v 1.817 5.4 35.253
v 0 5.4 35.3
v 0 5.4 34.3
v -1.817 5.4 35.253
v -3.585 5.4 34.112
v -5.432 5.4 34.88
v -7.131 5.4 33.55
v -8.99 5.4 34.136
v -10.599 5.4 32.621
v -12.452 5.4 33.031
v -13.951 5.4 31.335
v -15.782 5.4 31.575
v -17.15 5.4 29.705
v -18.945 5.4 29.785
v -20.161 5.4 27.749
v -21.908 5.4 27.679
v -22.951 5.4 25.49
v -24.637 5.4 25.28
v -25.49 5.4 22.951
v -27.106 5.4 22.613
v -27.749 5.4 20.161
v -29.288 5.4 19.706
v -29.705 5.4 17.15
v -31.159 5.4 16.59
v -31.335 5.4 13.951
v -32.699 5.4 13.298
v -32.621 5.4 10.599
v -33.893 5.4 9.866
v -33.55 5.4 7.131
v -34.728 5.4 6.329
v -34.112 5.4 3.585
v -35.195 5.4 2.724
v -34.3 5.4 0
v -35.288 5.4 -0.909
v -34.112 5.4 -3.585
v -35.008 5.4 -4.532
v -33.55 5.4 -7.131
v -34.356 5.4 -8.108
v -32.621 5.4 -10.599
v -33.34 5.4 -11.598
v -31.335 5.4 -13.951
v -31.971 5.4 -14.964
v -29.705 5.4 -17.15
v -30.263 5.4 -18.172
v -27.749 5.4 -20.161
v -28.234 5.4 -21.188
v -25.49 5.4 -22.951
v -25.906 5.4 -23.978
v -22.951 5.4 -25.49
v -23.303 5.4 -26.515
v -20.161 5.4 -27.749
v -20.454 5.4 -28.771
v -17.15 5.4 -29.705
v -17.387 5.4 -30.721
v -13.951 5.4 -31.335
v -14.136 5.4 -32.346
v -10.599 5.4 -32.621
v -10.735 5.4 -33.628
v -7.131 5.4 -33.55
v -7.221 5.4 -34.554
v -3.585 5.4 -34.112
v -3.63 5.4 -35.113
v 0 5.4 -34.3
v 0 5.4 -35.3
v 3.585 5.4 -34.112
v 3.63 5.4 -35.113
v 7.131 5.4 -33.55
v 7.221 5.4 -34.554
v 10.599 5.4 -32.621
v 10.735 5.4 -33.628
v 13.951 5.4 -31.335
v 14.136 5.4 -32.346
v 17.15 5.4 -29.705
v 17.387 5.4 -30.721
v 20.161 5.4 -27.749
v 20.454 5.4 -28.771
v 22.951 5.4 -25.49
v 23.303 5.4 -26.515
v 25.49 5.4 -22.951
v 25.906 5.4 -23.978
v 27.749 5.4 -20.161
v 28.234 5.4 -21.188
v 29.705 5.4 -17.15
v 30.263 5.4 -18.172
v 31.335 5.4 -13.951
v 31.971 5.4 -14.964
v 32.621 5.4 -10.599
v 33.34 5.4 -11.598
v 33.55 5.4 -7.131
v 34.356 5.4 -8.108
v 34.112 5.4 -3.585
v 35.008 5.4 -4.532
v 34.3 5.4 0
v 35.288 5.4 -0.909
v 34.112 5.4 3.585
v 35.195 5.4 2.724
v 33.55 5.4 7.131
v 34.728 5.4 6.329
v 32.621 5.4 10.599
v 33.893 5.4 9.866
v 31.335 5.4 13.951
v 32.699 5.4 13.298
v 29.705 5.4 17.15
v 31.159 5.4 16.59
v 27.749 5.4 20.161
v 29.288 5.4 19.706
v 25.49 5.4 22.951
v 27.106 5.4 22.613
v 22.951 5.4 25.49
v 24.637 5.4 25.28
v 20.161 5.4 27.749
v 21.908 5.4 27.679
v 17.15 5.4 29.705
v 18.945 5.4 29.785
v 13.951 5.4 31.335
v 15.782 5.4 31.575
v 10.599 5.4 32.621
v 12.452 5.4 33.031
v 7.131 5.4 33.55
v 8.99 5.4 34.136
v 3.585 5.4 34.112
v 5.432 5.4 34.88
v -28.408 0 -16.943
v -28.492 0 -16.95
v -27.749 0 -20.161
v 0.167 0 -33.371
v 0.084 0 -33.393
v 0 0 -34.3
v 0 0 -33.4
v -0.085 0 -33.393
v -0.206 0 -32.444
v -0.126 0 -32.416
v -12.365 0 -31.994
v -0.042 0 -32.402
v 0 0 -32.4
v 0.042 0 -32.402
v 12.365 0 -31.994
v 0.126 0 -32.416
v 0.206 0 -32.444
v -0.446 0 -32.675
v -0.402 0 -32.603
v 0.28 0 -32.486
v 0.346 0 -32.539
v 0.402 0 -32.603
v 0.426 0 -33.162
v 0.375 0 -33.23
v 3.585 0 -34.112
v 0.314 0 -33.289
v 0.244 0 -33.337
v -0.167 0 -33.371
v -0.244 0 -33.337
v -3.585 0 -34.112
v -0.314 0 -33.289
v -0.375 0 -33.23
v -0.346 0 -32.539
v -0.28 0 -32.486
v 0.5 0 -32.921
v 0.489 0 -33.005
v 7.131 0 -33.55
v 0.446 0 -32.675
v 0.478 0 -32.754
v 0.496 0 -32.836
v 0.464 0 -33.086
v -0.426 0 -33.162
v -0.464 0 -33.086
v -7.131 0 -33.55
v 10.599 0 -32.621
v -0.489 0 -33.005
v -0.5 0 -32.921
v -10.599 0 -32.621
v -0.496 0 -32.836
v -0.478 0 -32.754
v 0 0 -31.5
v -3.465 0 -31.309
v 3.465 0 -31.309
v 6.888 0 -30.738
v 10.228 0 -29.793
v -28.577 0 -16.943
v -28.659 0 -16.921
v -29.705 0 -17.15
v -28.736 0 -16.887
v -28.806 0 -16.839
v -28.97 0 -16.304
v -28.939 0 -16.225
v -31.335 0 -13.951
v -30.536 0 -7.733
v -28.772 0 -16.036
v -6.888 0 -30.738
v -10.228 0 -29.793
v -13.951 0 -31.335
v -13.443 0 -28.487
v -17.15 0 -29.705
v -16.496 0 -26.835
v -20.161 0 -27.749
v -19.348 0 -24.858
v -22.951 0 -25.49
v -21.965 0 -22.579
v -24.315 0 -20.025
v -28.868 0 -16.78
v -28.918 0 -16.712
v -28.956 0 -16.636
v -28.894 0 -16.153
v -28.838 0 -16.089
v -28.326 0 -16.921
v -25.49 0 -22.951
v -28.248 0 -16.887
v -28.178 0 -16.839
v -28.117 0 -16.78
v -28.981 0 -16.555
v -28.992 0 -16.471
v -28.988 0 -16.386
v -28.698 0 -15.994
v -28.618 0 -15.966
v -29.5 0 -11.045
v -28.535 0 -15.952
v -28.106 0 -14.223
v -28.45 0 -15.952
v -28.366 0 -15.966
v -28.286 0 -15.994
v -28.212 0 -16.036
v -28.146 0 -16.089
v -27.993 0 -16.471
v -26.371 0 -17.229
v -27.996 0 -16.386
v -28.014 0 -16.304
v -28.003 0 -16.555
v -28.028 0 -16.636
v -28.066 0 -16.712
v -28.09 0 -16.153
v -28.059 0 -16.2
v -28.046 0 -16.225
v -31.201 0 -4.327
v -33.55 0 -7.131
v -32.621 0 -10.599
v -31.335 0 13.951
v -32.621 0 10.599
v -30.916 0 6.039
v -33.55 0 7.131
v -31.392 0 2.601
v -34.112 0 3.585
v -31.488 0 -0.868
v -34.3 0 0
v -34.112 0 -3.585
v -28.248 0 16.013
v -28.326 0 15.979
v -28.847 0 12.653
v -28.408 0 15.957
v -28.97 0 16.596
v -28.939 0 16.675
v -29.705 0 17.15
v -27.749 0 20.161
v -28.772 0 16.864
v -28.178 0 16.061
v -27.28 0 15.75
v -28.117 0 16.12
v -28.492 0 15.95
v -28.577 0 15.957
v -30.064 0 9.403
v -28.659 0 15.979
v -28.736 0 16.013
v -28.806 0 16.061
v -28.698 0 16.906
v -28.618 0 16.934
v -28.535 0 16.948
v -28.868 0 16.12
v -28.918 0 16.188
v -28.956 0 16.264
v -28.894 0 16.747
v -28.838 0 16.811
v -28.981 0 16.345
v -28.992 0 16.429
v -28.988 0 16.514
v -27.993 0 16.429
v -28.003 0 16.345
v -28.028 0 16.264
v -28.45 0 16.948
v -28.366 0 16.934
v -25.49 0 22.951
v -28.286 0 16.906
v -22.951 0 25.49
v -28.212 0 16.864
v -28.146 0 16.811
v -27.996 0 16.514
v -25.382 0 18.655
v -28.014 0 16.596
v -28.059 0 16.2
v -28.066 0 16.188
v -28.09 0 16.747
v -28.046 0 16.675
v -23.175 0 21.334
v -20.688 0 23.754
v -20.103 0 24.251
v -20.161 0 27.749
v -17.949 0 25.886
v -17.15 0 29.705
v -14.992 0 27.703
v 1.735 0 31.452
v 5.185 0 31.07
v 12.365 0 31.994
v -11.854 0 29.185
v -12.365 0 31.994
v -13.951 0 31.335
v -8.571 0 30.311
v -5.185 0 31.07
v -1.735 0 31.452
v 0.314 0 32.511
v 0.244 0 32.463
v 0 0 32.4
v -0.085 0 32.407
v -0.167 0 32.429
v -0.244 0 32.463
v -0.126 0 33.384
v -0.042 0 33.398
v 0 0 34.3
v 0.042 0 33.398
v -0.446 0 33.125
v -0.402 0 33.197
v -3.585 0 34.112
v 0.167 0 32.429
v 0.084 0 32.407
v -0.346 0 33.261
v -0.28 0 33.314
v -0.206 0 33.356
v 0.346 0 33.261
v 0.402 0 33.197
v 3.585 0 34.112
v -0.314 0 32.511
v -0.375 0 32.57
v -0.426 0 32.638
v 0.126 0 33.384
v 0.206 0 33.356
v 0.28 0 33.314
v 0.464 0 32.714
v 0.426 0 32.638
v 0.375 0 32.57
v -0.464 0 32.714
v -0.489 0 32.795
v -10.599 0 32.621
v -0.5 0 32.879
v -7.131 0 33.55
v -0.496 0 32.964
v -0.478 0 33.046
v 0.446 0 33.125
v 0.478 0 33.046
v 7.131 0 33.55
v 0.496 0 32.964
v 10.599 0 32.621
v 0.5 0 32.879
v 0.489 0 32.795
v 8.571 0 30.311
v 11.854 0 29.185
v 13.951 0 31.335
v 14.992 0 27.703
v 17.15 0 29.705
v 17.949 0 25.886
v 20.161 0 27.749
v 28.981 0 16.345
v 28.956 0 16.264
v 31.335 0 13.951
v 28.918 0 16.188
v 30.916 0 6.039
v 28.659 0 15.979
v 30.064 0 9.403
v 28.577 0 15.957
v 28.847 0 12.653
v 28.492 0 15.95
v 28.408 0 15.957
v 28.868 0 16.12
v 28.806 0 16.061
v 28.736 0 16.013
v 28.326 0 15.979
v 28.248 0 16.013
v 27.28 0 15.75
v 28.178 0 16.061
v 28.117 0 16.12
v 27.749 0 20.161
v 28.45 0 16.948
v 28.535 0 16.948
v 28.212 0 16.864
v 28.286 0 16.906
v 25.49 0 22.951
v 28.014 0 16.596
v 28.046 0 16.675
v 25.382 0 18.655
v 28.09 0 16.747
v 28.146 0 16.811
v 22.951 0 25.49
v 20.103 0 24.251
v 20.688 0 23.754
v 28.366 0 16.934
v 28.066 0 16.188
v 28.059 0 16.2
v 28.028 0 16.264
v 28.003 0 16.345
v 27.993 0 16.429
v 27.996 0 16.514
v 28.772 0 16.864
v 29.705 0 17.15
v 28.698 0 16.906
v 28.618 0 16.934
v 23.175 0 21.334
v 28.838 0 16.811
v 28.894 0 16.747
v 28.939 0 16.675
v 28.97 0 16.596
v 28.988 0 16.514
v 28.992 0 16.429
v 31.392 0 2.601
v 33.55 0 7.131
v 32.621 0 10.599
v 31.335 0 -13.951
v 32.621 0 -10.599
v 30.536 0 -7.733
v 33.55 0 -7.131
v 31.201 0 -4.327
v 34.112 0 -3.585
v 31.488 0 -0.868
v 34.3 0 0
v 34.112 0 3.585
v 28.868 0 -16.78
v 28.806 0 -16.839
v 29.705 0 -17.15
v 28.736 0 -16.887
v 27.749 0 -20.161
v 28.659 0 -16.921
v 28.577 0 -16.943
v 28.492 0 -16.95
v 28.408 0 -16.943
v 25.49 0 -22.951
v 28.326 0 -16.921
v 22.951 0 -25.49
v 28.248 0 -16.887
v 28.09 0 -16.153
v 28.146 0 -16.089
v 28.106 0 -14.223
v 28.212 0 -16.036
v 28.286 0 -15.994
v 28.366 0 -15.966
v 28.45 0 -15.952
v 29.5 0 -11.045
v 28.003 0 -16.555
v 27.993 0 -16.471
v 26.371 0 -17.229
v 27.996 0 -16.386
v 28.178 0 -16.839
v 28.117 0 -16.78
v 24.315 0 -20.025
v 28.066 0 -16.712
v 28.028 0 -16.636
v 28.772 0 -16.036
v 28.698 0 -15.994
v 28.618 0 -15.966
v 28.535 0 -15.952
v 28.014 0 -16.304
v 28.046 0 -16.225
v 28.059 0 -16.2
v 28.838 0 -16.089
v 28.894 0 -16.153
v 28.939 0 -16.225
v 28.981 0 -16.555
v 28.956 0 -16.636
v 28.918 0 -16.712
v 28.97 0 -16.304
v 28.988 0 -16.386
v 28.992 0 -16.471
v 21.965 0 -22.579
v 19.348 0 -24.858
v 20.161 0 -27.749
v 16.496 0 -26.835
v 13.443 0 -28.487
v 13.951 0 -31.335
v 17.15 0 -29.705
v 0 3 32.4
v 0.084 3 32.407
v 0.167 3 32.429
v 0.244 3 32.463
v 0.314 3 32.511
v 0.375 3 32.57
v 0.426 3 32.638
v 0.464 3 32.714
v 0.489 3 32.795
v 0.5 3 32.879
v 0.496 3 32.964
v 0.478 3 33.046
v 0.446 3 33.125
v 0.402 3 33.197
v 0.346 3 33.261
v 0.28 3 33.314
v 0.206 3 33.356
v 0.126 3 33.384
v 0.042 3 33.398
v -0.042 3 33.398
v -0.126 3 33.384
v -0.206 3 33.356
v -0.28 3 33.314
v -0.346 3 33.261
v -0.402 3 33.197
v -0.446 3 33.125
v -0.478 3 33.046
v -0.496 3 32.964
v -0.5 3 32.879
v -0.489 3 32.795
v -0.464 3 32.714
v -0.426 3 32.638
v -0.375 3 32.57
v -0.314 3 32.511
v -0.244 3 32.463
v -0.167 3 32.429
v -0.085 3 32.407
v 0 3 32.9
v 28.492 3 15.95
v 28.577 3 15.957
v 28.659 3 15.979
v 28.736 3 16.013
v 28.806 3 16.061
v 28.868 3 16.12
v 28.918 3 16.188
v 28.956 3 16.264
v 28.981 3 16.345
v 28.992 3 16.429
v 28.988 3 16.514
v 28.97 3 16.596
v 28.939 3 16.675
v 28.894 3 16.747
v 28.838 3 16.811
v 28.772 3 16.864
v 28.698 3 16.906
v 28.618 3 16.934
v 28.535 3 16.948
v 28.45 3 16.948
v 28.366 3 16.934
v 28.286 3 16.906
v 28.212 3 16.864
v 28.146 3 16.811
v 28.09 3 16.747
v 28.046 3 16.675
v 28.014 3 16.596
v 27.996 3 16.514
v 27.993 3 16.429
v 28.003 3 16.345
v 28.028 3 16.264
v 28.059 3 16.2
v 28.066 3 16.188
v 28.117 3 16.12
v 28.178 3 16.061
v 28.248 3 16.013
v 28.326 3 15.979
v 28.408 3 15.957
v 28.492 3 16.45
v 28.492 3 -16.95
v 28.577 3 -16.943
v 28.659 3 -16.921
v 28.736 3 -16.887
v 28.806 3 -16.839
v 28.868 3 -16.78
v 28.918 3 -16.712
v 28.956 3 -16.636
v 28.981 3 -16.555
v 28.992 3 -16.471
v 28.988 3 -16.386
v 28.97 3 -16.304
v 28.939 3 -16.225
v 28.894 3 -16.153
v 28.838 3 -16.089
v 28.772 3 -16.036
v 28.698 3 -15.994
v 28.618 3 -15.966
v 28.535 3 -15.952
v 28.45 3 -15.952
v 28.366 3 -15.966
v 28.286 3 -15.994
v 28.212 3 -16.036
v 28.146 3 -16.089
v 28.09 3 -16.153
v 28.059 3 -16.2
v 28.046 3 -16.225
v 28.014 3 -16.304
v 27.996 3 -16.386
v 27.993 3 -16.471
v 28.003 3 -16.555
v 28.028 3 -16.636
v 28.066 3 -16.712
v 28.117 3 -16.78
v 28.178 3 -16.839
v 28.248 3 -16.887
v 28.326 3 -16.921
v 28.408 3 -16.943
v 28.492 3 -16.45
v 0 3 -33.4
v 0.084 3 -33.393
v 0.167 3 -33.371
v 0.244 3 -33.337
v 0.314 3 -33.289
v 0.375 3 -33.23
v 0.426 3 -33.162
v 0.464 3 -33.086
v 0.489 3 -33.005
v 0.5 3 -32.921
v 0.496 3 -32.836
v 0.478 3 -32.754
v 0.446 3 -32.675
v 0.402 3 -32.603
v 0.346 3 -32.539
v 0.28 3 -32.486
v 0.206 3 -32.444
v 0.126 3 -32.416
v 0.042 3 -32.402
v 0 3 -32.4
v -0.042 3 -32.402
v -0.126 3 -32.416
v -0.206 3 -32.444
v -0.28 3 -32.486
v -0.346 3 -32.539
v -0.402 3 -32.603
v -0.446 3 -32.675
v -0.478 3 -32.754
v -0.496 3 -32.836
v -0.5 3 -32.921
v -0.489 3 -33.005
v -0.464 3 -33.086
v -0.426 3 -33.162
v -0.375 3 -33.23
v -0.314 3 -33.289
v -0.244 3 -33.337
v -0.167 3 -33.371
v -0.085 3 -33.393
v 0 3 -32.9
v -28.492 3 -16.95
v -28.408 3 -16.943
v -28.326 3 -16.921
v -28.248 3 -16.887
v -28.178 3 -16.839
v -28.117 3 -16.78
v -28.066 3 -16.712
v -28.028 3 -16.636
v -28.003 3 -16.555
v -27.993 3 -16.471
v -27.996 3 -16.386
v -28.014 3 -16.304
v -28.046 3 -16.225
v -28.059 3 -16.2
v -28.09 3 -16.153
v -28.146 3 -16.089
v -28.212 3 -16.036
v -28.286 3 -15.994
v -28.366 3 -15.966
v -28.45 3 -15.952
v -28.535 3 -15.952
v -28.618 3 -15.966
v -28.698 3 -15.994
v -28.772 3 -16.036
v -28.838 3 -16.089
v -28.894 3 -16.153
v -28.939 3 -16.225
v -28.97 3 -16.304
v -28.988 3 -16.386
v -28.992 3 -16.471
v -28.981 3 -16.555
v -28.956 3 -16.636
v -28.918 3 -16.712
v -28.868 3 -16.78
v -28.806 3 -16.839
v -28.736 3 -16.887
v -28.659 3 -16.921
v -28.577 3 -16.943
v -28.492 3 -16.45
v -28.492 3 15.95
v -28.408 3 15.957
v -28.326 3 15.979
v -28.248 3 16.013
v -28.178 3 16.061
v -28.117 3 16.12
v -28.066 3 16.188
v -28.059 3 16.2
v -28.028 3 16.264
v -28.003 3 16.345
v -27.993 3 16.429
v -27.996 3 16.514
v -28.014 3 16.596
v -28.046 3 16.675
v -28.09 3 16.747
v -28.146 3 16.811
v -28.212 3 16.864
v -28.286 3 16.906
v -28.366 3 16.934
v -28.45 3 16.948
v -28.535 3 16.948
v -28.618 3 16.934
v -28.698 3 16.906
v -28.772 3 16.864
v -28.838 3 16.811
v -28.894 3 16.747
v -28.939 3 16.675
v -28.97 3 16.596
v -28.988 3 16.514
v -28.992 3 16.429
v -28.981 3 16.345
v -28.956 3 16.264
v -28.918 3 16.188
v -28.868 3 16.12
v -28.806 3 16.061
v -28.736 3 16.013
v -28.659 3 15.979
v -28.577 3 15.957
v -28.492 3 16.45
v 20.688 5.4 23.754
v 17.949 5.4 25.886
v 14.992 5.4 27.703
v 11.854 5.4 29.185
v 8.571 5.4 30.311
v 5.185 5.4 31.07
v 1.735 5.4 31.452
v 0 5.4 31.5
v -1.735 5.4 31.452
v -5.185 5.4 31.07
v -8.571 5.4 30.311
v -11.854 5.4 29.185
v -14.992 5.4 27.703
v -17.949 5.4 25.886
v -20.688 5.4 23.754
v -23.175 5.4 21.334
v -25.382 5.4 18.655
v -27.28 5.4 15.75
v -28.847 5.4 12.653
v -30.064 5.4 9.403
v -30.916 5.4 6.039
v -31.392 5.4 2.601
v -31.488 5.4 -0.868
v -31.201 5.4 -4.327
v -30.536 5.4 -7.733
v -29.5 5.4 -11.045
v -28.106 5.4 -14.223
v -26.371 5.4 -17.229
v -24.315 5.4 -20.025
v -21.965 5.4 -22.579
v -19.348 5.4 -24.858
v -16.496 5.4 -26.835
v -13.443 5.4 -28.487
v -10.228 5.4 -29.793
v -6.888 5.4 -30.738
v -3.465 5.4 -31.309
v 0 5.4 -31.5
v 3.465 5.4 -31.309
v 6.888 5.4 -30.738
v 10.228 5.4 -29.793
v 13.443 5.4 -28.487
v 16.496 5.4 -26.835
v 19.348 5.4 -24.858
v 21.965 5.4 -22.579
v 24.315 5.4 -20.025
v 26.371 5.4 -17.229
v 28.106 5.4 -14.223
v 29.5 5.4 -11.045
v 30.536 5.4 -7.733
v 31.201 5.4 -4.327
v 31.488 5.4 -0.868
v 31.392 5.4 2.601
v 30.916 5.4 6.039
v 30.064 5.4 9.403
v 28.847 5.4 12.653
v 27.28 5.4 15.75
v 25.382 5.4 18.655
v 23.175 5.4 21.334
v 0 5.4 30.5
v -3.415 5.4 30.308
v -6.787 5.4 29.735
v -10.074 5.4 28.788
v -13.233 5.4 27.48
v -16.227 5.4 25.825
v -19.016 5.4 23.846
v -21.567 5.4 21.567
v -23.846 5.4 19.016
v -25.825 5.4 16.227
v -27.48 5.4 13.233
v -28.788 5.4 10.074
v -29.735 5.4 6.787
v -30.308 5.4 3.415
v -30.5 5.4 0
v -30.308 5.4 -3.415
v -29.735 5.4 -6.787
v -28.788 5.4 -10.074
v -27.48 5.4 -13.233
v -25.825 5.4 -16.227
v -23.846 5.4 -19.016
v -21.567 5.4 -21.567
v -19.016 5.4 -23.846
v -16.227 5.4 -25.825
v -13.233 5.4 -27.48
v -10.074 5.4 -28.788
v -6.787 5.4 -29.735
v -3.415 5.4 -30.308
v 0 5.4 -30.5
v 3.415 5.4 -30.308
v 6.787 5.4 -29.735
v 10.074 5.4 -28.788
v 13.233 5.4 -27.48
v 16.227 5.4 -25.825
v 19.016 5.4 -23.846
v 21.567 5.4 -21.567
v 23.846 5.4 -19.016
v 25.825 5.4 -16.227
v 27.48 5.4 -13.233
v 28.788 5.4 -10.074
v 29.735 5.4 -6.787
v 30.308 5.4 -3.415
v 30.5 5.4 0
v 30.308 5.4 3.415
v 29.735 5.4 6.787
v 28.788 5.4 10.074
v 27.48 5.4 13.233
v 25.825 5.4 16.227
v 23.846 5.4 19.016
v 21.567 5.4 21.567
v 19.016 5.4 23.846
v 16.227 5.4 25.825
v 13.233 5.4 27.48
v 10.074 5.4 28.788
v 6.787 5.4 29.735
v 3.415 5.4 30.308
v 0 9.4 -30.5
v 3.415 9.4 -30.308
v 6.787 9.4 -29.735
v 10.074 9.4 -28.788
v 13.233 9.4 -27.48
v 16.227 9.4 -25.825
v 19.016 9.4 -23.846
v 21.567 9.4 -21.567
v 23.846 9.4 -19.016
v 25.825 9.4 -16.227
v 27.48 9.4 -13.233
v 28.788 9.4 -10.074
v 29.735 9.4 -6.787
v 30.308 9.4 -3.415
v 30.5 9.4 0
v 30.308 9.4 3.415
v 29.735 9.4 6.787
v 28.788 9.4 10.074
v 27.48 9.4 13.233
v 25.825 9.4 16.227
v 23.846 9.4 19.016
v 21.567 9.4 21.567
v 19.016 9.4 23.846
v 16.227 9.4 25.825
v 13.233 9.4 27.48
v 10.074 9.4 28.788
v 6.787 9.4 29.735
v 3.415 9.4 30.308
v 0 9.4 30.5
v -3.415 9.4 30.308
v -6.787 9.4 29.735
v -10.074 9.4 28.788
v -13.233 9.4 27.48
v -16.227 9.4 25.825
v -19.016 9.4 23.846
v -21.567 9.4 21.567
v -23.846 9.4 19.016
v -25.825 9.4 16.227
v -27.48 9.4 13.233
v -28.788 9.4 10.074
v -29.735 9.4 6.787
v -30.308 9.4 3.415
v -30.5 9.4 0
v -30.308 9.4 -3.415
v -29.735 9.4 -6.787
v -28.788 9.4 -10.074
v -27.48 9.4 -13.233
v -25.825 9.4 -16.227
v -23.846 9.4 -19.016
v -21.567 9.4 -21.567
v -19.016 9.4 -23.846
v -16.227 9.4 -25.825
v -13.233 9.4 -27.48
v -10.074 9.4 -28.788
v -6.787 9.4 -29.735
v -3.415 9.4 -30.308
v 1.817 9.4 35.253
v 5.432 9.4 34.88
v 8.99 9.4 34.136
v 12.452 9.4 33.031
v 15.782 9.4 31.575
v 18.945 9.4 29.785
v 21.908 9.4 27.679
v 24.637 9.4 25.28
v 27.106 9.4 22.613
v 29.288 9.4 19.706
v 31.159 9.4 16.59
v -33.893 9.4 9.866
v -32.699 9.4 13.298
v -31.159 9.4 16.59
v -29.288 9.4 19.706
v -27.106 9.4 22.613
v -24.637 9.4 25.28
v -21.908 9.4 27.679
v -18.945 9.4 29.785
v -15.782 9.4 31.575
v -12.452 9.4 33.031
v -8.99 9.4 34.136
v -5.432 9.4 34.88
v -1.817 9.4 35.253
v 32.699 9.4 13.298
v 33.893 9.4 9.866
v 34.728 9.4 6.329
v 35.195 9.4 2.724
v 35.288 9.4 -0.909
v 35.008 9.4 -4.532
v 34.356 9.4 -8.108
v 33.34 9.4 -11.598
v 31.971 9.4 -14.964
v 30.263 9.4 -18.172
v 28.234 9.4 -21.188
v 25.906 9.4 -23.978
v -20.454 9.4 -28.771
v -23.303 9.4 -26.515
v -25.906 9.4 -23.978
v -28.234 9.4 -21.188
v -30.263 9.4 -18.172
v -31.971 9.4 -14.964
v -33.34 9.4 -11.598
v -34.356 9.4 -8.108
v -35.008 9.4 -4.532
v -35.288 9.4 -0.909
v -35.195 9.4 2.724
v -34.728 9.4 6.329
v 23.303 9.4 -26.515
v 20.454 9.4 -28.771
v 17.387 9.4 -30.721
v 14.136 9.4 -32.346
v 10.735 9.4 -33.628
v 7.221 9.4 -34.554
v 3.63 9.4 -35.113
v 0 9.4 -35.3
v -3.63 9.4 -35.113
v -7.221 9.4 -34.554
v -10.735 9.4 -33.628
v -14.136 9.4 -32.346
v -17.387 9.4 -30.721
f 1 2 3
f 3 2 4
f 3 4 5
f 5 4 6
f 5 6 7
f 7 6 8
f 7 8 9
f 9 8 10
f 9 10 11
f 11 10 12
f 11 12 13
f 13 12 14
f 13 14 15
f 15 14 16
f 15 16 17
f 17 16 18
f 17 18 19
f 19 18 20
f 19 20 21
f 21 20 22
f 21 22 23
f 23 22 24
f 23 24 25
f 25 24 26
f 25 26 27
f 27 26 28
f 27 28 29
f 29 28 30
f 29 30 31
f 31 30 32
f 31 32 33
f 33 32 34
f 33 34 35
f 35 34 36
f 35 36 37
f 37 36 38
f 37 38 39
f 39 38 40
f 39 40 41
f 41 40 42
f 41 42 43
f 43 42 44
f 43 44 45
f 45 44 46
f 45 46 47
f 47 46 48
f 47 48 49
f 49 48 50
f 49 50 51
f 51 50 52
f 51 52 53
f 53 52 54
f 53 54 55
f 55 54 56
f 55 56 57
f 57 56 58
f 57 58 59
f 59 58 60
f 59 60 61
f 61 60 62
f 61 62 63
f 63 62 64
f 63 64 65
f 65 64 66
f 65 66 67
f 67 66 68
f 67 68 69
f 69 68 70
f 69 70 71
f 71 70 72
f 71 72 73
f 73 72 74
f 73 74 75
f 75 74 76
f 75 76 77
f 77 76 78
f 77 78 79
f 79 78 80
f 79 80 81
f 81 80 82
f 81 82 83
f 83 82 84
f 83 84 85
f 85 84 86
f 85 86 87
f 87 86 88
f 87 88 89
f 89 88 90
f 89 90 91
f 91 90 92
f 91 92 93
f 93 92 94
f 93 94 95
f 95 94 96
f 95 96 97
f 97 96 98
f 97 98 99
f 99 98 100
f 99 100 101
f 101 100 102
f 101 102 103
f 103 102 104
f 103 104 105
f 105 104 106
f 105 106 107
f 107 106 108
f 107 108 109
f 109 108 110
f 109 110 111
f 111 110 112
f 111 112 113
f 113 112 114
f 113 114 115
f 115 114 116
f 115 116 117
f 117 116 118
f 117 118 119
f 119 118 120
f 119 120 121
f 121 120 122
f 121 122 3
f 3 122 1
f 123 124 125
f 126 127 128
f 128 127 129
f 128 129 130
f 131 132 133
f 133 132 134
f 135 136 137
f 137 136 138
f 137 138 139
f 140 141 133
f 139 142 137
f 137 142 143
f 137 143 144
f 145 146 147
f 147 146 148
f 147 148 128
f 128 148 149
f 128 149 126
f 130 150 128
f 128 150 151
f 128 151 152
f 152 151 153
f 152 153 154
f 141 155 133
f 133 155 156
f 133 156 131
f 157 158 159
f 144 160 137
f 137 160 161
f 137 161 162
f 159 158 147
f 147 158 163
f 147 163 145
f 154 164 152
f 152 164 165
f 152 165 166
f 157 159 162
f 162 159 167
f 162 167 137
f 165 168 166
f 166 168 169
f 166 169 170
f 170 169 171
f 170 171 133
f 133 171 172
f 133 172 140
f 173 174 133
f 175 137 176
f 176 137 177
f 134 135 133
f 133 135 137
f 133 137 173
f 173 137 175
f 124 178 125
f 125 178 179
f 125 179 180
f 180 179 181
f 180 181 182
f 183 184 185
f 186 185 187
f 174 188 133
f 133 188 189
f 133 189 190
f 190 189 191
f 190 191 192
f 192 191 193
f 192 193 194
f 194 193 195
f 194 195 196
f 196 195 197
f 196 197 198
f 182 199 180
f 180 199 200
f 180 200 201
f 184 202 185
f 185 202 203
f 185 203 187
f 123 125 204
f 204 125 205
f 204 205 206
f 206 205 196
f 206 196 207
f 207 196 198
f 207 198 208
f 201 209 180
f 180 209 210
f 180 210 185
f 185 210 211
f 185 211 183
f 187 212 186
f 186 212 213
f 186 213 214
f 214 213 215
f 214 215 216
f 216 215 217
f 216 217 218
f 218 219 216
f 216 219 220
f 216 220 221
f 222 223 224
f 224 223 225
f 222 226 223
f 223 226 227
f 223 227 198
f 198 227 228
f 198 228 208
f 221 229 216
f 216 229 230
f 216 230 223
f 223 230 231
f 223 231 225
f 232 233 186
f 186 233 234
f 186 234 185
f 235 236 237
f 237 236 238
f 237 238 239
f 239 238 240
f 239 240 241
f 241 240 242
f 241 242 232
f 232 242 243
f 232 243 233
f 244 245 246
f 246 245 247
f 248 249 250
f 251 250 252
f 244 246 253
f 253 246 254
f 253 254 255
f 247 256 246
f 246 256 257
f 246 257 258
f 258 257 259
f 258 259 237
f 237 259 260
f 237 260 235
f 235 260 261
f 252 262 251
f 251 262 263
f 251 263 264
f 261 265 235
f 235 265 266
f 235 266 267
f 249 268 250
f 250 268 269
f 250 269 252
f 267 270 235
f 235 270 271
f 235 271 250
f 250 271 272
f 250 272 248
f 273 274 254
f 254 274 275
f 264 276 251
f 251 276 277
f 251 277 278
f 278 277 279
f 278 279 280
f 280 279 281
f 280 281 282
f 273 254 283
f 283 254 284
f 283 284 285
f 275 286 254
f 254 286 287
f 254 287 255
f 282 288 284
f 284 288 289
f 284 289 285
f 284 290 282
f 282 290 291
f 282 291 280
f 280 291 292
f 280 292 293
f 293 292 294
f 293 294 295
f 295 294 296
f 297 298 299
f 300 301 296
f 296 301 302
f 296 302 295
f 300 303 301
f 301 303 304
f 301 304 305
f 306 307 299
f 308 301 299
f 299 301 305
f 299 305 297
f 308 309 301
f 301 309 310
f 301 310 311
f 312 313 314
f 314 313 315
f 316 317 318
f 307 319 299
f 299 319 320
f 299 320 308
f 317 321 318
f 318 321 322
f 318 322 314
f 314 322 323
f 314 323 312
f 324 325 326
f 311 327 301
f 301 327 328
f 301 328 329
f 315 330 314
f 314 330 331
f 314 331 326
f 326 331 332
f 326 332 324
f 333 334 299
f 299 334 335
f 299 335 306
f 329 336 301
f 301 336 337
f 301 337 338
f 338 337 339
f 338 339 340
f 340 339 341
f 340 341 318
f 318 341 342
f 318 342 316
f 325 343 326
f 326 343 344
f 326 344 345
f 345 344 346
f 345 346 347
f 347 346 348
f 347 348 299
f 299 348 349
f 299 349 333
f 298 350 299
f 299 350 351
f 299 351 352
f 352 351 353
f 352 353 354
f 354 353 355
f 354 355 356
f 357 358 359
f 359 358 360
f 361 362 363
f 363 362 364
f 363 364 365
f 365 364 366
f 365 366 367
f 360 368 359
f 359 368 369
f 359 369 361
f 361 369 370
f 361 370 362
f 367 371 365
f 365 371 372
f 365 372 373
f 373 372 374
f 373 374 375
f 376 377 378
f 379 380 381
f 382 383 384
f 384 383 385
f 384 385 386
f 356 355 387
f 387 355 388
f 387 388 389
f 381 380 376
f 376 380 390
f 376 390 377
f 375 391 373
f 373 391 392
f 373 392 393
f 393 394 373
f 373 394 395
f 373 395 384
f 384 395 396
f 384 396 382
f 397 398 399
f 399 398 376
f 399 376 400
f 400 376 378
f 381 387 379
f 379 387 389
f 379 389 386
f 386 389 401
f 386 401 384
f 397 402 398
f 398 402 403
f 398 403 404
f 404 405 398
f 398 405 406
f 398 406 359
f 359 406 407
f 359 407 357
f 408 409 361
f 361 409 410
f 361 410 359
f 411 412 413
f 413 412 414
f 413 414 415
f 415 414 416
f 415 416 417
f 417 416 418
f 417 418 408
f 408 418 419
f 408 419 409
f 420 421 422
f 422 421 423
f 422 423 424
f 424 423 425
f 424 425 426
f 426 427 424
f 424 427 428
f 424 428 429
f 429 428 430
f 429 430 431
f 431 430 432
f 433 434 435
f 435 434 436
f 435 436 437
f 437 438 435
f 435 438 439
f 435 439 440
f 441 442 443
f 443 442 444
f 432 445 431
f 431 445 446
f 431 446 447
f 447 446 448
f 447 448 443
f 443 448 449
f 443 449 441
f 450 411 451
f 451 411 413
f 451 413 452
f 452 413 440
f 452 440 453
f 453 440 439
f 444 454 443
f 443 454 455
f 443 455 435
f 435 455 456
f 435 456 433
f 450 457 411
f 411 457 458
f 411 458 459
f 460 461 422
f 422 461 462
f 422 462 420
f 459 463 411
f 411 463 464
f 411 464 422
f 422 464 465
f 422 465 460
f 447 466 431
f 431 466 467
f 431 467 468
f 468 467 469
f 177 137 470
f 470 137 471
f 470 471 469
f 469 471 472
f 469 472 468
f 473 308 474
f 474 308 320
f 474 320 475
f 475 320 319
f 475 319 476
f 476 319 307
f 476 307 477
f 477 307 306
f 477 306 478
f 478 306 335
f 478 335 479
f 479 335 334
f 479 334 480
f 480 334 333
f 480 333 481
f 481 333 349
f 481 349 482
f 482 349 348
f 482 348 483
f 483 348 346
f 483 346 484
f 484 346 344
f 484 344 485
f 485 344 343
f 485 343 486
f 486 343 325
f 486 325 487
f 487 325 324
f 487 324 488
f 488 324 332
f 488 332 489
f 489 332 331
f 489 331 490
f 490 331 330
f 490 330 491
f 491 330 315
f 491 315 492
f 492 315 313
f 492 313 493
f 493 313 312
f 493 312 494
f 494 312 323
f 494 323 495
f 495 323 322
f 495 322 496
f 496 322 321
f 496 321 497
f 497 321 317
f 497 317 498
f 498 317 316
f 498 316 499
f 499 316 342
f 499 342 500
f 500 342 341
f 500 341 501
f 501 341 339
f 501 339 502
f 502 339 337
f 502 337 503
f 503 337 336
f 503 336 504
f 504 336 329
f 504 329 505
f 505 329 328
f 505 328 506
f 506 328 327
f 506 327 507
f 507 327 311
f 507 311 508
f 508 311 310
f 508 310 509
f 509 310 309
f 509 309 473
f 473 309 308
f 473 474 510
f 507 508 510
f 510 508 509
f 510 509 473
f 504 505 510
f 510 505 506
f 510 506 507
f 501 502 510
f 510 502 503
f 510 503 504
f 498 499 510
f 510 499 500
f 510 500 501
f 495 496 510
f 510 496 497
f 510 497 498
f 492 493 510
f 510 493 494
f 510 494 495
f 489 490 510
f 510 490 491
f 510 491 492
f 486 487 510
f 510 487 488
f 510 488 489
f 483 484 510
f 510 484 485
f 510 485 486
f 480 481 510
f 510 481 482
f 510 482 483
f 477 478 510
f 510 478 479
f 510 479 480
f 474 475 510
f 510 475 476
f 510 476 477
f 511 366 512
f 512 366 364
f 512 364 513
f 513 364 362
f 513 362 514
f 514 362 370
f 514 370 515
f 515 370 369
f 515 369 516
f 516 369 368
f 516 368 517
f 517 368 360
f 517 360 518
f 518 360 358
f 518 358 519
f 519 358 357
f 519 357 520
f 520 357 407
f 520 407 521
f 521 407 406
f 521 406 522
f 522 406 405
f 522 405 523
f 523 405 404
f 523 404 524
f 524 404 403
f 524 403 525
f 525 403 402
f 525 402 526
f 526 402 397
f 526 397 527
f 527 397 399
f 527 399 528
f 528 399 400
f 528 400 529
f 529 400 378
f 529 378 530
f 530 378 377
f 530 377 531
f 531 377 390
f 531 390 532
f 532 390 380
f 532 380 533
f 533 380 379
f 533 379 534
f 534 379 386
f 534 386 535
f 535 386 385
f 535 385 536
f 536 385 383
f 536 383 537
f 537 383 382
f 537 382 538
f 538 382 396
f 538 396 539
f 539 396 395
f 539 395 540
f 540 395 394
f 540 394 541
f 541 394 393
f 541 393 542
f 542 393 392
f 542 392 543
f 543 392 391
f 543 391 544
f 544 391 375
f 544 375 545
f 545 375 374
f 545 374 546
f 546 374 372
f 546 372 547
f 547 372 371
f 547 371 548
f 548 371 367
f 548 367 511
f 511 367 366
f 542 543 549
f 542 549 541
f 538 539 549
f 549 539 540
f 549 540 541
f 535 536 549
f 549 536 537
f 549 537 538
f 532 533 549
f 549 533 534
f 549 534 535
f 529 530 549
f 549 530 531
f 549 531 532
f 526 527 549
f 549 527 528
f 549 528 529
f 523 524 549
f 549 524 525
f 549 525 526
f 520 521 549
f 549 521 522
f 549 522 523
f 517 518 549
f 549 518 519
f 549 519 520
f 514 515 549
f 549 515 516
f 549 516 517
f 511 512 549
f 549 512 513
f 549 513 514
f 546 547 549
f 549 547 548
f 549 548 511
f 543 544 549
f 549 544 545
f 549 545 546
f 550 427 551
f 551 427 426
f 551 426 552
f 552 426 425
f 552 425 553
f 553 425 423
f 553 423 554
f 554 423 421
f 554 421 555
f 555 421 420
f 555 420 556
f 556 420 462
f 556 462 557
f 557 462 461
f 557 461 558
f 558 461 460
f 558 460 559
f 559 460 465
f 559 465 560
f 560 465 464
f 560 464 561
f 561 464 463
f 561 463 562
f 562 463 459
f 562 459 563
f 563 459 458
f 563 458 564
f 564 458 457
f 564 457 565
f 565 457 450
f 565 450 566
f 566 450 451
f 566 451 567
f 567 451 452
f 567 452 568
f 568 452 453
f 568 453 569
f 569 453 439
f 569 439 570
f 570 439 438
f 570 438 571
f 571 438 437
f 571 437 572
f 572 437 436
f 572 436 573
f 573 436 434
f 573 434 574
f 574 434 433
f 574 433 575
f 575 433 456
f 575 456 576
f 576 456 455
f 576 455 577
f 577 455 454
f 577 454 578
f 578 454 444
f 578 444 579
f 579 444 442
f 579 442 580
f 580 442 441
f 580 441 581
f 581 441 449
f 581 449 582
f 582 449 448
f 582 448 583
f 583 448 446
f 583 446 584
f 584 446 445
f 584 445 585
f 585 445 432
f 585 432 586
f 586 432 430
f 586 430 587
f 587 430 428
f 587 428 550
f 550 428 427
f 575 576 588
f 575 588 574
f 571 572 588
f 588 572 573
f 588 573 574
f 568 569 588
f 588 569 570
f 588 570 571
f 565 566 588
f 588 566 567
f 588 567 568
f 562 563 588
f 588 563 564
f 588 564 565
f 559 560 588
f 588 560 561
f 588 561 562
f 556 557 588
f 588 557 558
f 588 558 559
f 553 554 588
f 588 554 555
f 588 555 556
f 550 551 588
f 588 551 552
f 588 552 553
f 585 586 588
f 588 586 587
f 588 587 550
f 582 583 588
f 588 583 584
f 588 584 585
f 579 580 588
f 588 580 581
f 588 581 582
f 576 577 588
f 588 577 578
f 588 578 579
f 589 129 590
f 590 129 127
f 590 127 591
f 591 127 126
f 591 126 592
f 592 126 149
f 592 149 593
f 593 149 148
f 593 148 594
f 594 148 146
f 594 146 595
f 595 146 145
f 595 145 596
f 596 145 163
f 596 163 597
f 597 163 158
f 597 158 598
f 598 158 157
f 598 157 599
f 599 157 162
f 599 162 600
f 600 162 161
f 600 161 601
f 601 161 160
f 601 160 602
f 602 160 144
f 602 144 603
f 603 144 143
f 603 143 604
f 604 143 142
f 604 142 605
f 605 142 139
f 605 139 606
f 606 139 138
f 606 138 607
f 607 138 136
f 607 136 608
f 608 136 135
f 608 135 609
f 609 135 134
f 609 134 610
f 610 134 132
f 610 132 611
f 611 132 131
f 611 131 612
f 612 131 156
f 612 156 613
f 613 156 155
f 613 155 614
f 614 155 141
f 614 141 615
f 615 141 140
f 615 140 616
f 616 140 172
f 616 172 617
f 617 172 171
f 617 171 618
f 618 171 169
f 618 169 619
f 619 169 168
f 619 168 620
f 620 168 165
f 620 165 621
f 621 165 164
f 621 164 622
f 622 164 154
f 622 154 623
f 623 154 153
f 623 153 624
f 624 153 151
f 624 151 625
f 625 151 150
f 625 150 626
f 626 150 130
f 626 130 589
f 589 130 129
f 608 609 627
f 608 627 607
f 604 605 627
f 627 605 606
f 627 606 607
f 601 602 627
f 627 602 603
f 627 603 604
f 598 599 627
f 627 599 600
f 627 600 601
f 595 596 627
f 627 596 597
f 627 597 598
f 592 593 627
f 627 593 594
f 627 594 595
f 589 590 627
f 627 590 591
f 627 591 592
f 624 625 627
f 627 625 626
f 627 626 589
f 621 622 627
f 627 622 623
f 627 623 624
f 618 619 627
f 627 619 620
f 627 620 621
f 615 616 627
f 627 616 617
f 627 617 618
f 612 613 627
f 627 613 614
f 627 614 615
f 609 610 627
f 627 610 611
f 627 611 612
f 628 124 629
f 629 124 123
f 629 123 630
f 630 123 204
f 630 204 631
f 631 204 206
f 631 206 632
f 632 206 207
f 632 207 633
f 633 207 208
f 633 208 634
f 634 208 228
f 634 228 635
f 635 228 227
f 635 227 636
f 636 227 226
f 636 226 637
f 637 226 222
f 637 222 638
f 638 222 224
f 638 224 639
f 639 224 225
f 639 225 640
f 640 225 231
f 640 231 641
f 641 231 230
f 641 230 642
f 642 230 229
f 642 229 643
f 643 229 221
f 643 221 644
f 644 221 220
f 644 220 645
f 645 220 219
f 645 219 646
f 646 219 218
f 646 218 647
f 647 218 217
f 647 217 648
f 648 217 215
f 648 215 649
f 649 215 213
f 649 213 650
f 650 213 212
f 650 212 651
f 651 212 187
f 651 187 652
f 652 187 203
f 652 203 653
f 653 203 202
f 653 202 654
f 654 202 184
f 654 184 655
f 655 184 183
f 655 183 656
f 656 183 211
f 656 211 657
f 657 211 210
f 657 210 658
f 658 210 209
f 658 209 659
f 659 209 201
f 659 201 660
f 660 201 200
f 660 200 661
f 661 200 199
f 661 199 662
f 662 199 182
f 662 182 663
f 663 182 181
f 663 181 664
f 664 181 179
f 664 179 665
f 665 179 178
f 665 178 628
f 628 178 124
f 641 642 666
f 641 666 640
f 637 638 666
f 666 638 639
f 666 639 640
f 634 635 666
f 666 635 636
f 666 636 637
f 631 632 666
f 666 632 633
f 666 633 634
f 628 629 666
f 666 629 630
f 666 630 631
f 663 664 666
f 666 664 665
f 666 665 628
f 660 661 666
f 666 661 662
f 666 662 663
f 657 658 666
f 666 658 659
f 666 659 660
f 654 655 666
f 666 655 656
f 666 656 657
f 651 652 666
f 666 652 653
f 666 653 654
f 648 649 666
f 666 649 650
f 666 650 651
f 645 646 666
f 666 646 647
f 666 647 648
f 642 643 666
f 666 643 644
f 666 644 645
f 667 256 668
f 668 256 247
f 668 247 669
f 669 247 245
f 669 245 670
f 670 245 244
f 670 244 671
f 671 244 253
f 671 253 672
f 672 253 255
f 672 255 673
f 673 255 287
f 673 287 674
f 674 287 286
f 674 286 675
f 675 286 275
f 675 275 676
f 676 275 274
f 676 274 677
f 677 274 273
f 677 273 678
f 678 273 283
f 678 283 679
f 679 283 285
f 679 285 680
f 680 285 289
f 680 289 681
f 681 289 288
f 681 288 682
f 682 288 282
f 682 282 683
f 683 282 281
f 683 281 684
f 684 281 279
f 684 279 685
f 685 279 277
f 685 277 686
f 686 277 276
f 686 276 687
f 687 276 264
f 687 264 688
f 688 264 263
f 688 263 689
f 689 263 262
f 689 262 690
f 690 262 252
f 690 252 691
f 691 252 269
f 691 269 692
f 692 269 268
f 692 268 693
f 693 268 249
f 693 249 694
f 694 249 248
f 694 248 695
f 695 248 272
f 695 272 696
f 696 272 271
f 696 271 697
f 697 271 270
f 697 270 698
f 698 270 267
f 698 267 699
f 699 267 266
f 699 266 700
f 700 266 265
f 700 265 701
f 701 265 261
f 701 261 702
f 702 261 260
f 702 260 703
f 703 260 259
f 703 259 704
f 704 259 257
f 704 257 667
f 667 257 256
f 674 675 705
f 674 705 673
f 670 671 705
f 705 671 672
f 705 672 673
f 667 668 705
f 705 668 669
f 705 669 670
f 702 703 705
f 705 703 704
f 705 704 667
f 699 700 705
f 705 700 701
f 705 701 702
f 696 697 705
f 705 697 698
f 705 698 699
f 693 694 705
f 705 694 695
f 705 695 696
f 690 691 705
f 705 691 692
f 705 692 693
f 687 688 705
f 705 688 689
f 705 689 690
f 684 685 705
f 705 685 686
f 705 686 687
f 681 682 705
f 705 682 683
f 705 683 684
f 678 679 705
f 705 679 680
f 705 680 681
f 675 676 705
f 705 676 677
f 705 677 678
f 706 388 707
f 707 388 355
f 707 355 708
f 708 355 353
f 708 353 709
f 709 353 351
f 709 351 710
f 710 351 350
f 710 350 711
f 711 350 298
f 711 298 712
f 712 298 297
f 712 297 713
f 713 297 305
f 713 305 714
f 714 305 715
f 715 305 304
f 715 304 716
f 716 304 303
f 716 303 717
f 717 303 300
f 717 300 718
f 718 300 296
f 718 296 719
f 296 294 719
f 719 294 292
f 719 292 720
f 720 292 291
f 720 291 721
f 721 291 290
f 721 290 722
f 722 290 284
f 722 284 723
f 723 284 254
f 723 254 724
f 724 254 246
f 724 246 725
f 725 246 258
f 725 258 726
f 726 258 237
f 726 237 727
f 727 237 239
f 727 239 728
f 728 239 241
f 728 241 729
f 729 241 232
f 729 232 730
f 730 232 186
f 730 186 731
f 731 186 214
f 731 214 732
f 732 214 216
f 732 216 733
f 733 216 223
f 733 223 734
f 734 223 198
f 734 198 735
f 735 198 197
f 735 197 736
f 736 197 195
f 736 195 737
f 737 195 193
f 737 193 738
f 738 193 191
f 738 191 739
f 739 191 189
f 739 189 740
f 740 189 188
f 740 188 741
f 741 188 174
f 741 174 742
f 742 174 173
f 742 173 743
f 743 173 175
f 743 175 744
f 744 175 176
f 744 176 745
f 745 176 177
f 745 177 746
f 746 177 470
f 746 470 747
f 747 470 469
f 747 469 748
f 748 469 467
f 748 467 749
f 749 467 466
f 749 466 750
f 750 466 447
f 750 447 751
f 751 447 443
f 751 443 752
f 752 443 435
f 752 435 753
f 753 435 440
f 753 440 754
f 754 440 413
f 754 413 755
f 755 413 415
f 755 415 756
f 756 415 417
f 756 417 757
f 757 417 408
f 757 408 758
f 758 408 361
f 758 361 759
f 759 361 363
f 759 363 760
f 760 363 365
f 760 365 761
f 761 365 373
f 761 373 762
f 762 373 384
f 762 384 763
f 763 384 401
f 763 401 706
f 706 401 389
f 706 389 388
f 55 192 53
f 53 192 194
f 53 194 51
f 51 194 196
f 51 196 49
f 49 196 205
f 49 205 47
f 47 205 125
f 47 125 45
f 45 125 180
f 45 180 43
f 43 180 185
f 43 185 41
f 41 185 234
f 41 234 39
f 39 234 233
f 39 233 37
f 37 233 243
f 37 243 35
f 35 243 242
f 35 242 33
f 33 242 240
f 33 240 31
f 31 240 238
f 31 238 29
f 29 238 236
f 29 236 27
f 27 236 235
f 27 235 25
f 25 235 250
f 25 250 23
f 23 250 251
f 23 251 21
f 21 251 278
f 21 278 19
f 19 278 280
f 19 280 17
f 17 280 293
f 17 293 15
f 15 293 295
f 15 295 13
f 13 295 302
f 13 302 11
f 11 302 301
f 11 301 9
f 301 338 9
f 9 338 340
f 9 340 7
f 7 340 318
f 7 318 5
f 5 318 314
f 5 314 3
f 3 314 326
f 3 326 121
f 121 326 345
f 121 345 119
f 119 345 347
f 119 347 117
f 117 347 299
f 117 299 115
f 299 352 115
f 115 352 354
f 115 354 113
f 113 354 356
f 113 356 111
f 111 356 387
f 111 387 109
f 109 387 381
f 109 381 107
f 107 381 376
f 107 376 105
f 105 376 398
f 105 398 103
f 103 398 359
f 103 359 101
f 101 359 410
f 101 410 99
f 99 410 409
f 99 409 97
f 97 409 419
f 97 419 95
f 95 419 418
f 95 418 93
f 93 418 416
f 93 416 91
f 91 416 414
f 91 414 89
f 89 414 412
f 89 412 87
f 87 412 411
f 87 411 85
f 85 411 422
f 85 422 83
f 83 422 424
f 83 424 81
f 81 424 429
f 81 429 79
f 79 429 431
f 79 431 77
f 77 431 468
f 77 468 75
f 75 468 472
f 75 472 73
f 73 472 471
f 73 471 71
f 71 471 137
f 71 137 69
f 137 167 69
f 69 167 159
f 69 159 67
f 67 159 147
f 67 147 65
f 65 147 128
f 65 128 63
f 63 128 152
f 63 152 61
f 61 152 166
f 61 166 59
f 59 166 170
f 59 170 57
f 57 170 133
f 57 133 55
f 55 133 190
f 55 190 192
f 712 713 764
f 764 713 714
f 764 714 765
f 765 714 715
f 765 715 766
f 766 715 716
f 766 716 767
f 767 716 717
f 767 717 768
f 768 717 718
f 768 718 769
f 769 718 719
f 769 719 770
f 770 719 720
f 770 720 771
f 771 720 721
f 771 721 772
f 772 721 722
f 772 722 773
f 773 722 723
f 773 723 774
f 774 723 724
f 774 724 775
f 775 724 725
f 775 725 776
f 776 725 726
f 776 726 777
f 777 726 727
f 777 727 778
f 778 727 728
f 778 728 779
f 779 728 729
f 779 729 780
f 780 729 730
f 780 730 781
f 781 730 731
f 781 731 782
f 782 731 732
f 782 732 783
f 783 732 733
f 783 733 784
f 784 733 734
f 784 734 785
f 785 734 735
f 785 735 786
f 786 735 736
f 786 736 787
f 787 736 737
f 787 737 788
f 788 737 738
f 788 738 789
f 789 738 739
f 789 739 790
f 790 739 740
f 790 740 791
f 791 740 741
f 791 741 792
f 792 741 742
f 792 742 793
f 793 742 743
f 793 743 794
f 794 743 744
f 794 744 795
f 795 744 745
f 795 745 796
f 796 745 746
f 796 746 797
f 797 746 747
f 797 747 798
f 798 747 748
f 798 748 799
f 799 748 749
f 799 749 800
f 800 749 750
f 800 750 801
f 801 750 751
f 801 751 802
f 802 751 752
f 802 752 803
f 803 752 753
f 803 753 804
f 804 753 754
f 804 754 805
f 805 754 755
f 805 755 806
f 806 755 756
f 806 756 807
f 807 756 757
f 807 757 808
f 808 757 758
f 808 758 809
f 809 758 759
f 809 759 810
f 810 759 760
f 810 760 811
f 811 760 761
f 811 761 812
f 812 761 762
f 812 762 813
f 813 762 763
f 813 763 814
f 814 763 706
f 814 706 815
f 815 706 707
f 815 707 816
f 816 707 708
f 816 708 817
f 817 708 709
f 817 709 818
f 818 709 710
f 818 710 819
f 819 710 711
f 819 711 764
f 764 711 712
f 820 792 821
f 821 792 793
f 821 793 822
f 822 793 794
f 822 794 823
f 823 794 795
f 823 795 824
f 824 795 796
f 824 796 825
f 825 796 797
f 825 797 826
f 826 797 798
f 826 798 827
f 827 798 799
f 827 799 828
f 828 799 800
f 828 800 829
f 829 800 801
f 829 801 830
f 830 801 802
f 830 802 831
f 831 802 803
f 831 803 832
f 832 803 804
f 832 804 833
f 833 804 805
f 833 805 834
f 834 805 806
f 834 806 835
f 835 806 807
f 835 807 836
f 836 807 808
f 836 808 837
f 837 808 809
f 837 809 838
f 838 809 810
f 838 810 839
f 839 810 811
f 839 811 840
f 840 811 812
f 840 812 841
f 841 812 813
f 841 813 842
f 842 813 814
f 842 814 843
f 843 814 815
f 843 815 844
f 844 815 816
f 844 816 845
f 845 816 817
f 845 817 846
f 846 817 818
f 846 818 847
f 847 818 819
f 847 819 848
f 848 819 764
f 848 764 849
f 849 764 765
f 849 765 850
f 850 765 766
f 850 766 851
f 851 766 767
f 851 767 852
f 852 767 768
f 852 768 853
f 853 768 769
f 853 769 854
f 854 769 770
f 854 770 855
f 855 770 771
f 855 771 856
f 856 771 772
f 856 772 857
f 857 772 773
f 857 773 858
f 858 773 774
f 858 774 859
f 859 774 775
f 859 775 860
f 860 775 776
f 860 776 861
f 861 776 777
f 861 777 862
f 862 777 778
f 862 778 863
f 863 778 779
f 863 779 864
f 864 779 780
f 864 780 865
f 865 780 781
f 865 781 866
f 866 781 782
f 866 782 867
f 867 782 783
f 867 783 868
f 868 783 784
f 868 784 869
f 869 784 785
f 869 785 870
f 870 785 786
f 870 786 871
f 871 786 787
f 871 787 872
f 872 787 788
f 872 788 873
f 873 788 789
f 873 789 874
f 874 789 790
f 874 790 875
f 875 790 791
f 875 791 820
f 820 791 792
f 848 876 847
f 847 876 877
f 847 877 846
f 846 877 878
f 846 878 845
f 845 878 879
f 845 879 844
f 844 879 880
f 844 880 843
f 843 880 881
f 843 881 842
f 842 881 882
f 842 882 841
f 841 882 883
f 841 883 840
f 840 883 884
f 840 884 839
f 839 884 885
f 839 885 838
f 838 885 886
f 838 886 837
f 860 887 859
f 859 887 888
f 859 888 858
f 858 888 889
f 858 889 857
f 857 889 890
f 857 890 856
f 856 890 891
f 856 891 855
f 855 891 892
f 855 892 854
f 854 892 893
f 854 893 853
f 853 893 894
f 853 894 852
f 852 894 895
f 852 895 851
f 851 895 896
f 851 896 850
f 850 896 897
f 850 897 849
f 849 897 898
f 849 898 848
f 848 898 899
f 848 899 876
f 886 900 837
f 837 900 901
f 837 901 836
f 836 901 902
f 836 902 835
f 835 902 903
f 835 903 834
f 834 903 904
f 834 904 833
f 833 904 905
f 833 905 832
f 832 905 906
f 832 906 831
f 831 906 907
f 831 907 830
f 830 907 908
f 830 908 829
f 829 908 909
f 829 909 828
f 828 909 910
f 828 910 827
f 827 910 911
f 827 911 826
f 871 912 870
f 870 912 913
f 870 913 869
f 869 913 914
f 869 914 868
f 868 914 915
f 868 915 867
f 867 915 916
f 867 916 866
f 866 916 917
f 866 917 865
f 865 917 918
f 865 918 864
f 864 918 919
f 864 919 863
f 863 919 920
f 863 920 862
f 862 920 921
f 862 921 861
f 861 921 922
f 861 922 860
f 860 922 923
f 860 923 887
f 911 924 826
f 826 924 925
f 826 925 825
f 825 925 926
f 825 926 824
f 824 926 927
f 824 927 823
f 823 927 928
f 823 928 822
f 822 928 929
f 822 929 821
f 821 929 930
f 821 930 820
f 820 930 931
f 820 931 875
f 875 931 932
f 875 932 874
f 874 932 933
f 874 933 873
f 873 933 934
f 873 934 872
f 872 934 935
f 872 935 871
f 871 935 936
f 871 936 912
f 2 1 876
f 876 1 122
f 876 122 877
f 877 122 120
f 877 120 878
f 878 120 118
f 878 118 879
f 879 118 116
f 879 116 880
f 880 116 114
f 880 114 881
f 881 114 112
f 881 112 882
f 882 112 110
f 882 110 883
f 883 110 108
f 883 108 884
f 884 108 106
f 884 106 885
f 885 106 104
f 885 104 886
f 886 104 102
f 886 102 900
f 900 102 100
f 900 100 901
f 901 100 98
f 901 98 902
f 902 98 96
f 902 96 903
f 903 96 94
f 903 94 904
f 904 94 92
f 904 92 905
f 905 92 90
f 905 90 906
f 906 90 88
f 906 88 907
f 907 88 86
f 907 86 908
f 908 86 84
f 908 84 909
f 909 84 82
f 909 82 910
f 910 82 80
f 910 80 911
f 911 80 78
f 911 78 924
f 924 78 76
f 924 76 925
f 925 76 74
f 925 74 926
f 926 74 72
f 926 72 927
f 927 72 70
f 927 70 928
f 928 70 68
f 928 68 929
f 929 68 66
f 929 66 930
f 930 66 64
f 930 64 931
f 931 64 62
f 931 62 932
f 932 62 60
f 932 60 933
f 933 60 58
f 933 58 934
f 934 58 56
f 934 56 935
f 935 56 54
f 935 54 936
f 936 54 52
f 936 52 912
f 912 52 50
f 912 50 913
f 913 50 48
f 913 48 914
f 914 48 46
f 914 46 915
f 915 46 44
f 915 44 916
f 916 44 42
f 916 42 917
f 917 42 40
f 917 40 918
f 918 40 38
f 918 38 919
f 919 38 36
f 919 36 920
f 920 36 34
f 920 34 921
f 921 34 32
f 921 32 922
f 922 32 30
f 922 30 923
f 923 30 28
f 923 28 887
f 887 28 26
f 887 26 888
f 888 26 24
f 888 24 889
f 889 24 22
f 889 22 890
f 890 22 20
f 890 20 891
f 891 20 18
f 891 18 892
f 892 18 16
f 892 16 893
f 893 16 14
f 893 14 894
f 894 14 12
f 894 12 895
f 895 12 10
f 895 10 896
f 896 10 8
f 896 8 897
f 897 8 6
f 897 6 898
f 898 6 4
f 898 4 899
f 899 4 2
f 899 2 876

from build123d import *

# Parameters (mm, degrees)
SKETCH_1_R               = 34.4
SKETCH_1_R_2             = 31.4
EXTRUDE_1_DEPTH          = 5.4
SKETCH_2_R               = 35.4
SKETCH_2_R_2             = 30.4
EXTRUDE_1_2_DEPTH        = 4
SKETCH_3_R               = 0.5
CUT_EXTRUDE_1_DEPTH      = 3
PATTERN_CIRCULAR_1_COUNT = 6
SKETCH_4_OUTSIDE_W       = 92.914
SKETCH_4_OUTSIDE_H       = 92.914
SKETCH_4_OUTSIDE_R       = 34.3
SKETCH_4_OUTSIDE_R_2     = 31.5
CUT_EXTRUDE_2_DEPTH      = 5.4
SKETCH_5_OUTSIDE_W       = 92.914
SKETCH_5_OUTSIDE_H       = 92.914
SKETCH_5_OUTSIDE_R       = 35.3
SKETCH_5_OUTSIDE_R_2     = 30.5
CUT_EXTRUDE_3_DEPTH      = 51.938001531


with BuildPart() as part:
    # 草图1 → Extrude 1 (new body)
    with BuildSketch(Plane(origin=(0, 0, 0), x_dir=(1, 0, 0), z_dir=(0, 1, 0))):
        Circle(SKETCH_1_R)
        Circle(SKETCH_1_R_2, mode=Mode.SUBTRACT)
    extrude(amount=EXTRUDE_1_DEPTH)

    # 草图2 → Extrude 1 2 (add)
    with BuildSketch(Plane(origin=(0, 5.4, 0), x_dir=(1, 0, 0), z_dir=(0, 1, 0))):
        with Locations(Location((0, 0, 0), (0, 0, 270))):
            Circle(SKETCH_2_R)
        with Locations(Location((0, 0, 0), (0, 0, 270))):
            Circle(SKETCH_2_R_2, mode=Mode.SUBTRACT)
    extrude(amount=EXTRUDE_1_2_DEPTH)

    # 草图3 → 切除-拉伸1 (cut)
    with BuildSketch(Plane.XZ):
        with Locations(Location((0, 32.9, 0), (0, 0, 270))):
            Circle(SKETCH_3_R)
    cut_extrude_1 = extrude(amount=-CUT_EXTRUDE_1_DEPTH, mode=Mode.SUBTRACT)

    # 阵列(圆周)1: 切除-拉伸1 ×6 about axis
    pattern_circular_1_axis = Axis((0, 0, 0), (0, 1, 0))
    for i in range(1, PATTERN_CIRCULAR_1_COUNT):
        add(cut_extrude_1.rotate(pattern_circular_1_axis, i * 360 / PATTERN_CIRCULAR_1_COUNT), mode=Mode.SUBTRACT)

    # 草图4 outside → 切除-拉伸2 (cut)
    # profile 1 of 2: a face of its own
    with BuildSketch(Plane.XZ):
        Rectangle(SKETCH_4_OUTSIDE_W, SKETCH_4_OUTSIDE_H)
        with Locations(Location((0, 0, 0), (0, 0, 270))):
            Circle(SKETCH_4_OUTSIDE_R, mode=Mode.SUBTRACT)
    # profile 2 of 2: a face of its own
    with BuildSketch(Plane.XZ):
        with Locations(Location((0, 0, 0), (0, 0, 270))):
            Circle(SKETCH_4_OUTSIDE_R_2)
    extrude(amount=-CUT_EXTRUDE_2_DEPTH, mode=Mode.SUBTRACT)

    # 草图5 outside → 切除-拉伸3 (cut, through all)
    # profile 1 of 2: a face of its own
    with BuildSketch(Plane.XZ):
        Rectangle(SKETCH_5_OUTSIDE_W, SKETCH_5_OUTSIDE_H)
        with Locations(Location((0, 0, 0), (0, 0, 270))):
            Circle(SKETCH_5_OUTSIDE_R, mode=Mode.SUBTRACT)
    # profile 2 of 2: a face of its own
    with BuildSketch(Plane.XZ):
        with Locations(Location((0, 0, 0), (0, 0, 270))):
            Circle(SKETCH_5_OUTSIDE_R_2)
    extrude(amount=-CUT_EXTRUDE_3_DEPTH, mode=Mode.SUBTRACT)


solid = part.part
